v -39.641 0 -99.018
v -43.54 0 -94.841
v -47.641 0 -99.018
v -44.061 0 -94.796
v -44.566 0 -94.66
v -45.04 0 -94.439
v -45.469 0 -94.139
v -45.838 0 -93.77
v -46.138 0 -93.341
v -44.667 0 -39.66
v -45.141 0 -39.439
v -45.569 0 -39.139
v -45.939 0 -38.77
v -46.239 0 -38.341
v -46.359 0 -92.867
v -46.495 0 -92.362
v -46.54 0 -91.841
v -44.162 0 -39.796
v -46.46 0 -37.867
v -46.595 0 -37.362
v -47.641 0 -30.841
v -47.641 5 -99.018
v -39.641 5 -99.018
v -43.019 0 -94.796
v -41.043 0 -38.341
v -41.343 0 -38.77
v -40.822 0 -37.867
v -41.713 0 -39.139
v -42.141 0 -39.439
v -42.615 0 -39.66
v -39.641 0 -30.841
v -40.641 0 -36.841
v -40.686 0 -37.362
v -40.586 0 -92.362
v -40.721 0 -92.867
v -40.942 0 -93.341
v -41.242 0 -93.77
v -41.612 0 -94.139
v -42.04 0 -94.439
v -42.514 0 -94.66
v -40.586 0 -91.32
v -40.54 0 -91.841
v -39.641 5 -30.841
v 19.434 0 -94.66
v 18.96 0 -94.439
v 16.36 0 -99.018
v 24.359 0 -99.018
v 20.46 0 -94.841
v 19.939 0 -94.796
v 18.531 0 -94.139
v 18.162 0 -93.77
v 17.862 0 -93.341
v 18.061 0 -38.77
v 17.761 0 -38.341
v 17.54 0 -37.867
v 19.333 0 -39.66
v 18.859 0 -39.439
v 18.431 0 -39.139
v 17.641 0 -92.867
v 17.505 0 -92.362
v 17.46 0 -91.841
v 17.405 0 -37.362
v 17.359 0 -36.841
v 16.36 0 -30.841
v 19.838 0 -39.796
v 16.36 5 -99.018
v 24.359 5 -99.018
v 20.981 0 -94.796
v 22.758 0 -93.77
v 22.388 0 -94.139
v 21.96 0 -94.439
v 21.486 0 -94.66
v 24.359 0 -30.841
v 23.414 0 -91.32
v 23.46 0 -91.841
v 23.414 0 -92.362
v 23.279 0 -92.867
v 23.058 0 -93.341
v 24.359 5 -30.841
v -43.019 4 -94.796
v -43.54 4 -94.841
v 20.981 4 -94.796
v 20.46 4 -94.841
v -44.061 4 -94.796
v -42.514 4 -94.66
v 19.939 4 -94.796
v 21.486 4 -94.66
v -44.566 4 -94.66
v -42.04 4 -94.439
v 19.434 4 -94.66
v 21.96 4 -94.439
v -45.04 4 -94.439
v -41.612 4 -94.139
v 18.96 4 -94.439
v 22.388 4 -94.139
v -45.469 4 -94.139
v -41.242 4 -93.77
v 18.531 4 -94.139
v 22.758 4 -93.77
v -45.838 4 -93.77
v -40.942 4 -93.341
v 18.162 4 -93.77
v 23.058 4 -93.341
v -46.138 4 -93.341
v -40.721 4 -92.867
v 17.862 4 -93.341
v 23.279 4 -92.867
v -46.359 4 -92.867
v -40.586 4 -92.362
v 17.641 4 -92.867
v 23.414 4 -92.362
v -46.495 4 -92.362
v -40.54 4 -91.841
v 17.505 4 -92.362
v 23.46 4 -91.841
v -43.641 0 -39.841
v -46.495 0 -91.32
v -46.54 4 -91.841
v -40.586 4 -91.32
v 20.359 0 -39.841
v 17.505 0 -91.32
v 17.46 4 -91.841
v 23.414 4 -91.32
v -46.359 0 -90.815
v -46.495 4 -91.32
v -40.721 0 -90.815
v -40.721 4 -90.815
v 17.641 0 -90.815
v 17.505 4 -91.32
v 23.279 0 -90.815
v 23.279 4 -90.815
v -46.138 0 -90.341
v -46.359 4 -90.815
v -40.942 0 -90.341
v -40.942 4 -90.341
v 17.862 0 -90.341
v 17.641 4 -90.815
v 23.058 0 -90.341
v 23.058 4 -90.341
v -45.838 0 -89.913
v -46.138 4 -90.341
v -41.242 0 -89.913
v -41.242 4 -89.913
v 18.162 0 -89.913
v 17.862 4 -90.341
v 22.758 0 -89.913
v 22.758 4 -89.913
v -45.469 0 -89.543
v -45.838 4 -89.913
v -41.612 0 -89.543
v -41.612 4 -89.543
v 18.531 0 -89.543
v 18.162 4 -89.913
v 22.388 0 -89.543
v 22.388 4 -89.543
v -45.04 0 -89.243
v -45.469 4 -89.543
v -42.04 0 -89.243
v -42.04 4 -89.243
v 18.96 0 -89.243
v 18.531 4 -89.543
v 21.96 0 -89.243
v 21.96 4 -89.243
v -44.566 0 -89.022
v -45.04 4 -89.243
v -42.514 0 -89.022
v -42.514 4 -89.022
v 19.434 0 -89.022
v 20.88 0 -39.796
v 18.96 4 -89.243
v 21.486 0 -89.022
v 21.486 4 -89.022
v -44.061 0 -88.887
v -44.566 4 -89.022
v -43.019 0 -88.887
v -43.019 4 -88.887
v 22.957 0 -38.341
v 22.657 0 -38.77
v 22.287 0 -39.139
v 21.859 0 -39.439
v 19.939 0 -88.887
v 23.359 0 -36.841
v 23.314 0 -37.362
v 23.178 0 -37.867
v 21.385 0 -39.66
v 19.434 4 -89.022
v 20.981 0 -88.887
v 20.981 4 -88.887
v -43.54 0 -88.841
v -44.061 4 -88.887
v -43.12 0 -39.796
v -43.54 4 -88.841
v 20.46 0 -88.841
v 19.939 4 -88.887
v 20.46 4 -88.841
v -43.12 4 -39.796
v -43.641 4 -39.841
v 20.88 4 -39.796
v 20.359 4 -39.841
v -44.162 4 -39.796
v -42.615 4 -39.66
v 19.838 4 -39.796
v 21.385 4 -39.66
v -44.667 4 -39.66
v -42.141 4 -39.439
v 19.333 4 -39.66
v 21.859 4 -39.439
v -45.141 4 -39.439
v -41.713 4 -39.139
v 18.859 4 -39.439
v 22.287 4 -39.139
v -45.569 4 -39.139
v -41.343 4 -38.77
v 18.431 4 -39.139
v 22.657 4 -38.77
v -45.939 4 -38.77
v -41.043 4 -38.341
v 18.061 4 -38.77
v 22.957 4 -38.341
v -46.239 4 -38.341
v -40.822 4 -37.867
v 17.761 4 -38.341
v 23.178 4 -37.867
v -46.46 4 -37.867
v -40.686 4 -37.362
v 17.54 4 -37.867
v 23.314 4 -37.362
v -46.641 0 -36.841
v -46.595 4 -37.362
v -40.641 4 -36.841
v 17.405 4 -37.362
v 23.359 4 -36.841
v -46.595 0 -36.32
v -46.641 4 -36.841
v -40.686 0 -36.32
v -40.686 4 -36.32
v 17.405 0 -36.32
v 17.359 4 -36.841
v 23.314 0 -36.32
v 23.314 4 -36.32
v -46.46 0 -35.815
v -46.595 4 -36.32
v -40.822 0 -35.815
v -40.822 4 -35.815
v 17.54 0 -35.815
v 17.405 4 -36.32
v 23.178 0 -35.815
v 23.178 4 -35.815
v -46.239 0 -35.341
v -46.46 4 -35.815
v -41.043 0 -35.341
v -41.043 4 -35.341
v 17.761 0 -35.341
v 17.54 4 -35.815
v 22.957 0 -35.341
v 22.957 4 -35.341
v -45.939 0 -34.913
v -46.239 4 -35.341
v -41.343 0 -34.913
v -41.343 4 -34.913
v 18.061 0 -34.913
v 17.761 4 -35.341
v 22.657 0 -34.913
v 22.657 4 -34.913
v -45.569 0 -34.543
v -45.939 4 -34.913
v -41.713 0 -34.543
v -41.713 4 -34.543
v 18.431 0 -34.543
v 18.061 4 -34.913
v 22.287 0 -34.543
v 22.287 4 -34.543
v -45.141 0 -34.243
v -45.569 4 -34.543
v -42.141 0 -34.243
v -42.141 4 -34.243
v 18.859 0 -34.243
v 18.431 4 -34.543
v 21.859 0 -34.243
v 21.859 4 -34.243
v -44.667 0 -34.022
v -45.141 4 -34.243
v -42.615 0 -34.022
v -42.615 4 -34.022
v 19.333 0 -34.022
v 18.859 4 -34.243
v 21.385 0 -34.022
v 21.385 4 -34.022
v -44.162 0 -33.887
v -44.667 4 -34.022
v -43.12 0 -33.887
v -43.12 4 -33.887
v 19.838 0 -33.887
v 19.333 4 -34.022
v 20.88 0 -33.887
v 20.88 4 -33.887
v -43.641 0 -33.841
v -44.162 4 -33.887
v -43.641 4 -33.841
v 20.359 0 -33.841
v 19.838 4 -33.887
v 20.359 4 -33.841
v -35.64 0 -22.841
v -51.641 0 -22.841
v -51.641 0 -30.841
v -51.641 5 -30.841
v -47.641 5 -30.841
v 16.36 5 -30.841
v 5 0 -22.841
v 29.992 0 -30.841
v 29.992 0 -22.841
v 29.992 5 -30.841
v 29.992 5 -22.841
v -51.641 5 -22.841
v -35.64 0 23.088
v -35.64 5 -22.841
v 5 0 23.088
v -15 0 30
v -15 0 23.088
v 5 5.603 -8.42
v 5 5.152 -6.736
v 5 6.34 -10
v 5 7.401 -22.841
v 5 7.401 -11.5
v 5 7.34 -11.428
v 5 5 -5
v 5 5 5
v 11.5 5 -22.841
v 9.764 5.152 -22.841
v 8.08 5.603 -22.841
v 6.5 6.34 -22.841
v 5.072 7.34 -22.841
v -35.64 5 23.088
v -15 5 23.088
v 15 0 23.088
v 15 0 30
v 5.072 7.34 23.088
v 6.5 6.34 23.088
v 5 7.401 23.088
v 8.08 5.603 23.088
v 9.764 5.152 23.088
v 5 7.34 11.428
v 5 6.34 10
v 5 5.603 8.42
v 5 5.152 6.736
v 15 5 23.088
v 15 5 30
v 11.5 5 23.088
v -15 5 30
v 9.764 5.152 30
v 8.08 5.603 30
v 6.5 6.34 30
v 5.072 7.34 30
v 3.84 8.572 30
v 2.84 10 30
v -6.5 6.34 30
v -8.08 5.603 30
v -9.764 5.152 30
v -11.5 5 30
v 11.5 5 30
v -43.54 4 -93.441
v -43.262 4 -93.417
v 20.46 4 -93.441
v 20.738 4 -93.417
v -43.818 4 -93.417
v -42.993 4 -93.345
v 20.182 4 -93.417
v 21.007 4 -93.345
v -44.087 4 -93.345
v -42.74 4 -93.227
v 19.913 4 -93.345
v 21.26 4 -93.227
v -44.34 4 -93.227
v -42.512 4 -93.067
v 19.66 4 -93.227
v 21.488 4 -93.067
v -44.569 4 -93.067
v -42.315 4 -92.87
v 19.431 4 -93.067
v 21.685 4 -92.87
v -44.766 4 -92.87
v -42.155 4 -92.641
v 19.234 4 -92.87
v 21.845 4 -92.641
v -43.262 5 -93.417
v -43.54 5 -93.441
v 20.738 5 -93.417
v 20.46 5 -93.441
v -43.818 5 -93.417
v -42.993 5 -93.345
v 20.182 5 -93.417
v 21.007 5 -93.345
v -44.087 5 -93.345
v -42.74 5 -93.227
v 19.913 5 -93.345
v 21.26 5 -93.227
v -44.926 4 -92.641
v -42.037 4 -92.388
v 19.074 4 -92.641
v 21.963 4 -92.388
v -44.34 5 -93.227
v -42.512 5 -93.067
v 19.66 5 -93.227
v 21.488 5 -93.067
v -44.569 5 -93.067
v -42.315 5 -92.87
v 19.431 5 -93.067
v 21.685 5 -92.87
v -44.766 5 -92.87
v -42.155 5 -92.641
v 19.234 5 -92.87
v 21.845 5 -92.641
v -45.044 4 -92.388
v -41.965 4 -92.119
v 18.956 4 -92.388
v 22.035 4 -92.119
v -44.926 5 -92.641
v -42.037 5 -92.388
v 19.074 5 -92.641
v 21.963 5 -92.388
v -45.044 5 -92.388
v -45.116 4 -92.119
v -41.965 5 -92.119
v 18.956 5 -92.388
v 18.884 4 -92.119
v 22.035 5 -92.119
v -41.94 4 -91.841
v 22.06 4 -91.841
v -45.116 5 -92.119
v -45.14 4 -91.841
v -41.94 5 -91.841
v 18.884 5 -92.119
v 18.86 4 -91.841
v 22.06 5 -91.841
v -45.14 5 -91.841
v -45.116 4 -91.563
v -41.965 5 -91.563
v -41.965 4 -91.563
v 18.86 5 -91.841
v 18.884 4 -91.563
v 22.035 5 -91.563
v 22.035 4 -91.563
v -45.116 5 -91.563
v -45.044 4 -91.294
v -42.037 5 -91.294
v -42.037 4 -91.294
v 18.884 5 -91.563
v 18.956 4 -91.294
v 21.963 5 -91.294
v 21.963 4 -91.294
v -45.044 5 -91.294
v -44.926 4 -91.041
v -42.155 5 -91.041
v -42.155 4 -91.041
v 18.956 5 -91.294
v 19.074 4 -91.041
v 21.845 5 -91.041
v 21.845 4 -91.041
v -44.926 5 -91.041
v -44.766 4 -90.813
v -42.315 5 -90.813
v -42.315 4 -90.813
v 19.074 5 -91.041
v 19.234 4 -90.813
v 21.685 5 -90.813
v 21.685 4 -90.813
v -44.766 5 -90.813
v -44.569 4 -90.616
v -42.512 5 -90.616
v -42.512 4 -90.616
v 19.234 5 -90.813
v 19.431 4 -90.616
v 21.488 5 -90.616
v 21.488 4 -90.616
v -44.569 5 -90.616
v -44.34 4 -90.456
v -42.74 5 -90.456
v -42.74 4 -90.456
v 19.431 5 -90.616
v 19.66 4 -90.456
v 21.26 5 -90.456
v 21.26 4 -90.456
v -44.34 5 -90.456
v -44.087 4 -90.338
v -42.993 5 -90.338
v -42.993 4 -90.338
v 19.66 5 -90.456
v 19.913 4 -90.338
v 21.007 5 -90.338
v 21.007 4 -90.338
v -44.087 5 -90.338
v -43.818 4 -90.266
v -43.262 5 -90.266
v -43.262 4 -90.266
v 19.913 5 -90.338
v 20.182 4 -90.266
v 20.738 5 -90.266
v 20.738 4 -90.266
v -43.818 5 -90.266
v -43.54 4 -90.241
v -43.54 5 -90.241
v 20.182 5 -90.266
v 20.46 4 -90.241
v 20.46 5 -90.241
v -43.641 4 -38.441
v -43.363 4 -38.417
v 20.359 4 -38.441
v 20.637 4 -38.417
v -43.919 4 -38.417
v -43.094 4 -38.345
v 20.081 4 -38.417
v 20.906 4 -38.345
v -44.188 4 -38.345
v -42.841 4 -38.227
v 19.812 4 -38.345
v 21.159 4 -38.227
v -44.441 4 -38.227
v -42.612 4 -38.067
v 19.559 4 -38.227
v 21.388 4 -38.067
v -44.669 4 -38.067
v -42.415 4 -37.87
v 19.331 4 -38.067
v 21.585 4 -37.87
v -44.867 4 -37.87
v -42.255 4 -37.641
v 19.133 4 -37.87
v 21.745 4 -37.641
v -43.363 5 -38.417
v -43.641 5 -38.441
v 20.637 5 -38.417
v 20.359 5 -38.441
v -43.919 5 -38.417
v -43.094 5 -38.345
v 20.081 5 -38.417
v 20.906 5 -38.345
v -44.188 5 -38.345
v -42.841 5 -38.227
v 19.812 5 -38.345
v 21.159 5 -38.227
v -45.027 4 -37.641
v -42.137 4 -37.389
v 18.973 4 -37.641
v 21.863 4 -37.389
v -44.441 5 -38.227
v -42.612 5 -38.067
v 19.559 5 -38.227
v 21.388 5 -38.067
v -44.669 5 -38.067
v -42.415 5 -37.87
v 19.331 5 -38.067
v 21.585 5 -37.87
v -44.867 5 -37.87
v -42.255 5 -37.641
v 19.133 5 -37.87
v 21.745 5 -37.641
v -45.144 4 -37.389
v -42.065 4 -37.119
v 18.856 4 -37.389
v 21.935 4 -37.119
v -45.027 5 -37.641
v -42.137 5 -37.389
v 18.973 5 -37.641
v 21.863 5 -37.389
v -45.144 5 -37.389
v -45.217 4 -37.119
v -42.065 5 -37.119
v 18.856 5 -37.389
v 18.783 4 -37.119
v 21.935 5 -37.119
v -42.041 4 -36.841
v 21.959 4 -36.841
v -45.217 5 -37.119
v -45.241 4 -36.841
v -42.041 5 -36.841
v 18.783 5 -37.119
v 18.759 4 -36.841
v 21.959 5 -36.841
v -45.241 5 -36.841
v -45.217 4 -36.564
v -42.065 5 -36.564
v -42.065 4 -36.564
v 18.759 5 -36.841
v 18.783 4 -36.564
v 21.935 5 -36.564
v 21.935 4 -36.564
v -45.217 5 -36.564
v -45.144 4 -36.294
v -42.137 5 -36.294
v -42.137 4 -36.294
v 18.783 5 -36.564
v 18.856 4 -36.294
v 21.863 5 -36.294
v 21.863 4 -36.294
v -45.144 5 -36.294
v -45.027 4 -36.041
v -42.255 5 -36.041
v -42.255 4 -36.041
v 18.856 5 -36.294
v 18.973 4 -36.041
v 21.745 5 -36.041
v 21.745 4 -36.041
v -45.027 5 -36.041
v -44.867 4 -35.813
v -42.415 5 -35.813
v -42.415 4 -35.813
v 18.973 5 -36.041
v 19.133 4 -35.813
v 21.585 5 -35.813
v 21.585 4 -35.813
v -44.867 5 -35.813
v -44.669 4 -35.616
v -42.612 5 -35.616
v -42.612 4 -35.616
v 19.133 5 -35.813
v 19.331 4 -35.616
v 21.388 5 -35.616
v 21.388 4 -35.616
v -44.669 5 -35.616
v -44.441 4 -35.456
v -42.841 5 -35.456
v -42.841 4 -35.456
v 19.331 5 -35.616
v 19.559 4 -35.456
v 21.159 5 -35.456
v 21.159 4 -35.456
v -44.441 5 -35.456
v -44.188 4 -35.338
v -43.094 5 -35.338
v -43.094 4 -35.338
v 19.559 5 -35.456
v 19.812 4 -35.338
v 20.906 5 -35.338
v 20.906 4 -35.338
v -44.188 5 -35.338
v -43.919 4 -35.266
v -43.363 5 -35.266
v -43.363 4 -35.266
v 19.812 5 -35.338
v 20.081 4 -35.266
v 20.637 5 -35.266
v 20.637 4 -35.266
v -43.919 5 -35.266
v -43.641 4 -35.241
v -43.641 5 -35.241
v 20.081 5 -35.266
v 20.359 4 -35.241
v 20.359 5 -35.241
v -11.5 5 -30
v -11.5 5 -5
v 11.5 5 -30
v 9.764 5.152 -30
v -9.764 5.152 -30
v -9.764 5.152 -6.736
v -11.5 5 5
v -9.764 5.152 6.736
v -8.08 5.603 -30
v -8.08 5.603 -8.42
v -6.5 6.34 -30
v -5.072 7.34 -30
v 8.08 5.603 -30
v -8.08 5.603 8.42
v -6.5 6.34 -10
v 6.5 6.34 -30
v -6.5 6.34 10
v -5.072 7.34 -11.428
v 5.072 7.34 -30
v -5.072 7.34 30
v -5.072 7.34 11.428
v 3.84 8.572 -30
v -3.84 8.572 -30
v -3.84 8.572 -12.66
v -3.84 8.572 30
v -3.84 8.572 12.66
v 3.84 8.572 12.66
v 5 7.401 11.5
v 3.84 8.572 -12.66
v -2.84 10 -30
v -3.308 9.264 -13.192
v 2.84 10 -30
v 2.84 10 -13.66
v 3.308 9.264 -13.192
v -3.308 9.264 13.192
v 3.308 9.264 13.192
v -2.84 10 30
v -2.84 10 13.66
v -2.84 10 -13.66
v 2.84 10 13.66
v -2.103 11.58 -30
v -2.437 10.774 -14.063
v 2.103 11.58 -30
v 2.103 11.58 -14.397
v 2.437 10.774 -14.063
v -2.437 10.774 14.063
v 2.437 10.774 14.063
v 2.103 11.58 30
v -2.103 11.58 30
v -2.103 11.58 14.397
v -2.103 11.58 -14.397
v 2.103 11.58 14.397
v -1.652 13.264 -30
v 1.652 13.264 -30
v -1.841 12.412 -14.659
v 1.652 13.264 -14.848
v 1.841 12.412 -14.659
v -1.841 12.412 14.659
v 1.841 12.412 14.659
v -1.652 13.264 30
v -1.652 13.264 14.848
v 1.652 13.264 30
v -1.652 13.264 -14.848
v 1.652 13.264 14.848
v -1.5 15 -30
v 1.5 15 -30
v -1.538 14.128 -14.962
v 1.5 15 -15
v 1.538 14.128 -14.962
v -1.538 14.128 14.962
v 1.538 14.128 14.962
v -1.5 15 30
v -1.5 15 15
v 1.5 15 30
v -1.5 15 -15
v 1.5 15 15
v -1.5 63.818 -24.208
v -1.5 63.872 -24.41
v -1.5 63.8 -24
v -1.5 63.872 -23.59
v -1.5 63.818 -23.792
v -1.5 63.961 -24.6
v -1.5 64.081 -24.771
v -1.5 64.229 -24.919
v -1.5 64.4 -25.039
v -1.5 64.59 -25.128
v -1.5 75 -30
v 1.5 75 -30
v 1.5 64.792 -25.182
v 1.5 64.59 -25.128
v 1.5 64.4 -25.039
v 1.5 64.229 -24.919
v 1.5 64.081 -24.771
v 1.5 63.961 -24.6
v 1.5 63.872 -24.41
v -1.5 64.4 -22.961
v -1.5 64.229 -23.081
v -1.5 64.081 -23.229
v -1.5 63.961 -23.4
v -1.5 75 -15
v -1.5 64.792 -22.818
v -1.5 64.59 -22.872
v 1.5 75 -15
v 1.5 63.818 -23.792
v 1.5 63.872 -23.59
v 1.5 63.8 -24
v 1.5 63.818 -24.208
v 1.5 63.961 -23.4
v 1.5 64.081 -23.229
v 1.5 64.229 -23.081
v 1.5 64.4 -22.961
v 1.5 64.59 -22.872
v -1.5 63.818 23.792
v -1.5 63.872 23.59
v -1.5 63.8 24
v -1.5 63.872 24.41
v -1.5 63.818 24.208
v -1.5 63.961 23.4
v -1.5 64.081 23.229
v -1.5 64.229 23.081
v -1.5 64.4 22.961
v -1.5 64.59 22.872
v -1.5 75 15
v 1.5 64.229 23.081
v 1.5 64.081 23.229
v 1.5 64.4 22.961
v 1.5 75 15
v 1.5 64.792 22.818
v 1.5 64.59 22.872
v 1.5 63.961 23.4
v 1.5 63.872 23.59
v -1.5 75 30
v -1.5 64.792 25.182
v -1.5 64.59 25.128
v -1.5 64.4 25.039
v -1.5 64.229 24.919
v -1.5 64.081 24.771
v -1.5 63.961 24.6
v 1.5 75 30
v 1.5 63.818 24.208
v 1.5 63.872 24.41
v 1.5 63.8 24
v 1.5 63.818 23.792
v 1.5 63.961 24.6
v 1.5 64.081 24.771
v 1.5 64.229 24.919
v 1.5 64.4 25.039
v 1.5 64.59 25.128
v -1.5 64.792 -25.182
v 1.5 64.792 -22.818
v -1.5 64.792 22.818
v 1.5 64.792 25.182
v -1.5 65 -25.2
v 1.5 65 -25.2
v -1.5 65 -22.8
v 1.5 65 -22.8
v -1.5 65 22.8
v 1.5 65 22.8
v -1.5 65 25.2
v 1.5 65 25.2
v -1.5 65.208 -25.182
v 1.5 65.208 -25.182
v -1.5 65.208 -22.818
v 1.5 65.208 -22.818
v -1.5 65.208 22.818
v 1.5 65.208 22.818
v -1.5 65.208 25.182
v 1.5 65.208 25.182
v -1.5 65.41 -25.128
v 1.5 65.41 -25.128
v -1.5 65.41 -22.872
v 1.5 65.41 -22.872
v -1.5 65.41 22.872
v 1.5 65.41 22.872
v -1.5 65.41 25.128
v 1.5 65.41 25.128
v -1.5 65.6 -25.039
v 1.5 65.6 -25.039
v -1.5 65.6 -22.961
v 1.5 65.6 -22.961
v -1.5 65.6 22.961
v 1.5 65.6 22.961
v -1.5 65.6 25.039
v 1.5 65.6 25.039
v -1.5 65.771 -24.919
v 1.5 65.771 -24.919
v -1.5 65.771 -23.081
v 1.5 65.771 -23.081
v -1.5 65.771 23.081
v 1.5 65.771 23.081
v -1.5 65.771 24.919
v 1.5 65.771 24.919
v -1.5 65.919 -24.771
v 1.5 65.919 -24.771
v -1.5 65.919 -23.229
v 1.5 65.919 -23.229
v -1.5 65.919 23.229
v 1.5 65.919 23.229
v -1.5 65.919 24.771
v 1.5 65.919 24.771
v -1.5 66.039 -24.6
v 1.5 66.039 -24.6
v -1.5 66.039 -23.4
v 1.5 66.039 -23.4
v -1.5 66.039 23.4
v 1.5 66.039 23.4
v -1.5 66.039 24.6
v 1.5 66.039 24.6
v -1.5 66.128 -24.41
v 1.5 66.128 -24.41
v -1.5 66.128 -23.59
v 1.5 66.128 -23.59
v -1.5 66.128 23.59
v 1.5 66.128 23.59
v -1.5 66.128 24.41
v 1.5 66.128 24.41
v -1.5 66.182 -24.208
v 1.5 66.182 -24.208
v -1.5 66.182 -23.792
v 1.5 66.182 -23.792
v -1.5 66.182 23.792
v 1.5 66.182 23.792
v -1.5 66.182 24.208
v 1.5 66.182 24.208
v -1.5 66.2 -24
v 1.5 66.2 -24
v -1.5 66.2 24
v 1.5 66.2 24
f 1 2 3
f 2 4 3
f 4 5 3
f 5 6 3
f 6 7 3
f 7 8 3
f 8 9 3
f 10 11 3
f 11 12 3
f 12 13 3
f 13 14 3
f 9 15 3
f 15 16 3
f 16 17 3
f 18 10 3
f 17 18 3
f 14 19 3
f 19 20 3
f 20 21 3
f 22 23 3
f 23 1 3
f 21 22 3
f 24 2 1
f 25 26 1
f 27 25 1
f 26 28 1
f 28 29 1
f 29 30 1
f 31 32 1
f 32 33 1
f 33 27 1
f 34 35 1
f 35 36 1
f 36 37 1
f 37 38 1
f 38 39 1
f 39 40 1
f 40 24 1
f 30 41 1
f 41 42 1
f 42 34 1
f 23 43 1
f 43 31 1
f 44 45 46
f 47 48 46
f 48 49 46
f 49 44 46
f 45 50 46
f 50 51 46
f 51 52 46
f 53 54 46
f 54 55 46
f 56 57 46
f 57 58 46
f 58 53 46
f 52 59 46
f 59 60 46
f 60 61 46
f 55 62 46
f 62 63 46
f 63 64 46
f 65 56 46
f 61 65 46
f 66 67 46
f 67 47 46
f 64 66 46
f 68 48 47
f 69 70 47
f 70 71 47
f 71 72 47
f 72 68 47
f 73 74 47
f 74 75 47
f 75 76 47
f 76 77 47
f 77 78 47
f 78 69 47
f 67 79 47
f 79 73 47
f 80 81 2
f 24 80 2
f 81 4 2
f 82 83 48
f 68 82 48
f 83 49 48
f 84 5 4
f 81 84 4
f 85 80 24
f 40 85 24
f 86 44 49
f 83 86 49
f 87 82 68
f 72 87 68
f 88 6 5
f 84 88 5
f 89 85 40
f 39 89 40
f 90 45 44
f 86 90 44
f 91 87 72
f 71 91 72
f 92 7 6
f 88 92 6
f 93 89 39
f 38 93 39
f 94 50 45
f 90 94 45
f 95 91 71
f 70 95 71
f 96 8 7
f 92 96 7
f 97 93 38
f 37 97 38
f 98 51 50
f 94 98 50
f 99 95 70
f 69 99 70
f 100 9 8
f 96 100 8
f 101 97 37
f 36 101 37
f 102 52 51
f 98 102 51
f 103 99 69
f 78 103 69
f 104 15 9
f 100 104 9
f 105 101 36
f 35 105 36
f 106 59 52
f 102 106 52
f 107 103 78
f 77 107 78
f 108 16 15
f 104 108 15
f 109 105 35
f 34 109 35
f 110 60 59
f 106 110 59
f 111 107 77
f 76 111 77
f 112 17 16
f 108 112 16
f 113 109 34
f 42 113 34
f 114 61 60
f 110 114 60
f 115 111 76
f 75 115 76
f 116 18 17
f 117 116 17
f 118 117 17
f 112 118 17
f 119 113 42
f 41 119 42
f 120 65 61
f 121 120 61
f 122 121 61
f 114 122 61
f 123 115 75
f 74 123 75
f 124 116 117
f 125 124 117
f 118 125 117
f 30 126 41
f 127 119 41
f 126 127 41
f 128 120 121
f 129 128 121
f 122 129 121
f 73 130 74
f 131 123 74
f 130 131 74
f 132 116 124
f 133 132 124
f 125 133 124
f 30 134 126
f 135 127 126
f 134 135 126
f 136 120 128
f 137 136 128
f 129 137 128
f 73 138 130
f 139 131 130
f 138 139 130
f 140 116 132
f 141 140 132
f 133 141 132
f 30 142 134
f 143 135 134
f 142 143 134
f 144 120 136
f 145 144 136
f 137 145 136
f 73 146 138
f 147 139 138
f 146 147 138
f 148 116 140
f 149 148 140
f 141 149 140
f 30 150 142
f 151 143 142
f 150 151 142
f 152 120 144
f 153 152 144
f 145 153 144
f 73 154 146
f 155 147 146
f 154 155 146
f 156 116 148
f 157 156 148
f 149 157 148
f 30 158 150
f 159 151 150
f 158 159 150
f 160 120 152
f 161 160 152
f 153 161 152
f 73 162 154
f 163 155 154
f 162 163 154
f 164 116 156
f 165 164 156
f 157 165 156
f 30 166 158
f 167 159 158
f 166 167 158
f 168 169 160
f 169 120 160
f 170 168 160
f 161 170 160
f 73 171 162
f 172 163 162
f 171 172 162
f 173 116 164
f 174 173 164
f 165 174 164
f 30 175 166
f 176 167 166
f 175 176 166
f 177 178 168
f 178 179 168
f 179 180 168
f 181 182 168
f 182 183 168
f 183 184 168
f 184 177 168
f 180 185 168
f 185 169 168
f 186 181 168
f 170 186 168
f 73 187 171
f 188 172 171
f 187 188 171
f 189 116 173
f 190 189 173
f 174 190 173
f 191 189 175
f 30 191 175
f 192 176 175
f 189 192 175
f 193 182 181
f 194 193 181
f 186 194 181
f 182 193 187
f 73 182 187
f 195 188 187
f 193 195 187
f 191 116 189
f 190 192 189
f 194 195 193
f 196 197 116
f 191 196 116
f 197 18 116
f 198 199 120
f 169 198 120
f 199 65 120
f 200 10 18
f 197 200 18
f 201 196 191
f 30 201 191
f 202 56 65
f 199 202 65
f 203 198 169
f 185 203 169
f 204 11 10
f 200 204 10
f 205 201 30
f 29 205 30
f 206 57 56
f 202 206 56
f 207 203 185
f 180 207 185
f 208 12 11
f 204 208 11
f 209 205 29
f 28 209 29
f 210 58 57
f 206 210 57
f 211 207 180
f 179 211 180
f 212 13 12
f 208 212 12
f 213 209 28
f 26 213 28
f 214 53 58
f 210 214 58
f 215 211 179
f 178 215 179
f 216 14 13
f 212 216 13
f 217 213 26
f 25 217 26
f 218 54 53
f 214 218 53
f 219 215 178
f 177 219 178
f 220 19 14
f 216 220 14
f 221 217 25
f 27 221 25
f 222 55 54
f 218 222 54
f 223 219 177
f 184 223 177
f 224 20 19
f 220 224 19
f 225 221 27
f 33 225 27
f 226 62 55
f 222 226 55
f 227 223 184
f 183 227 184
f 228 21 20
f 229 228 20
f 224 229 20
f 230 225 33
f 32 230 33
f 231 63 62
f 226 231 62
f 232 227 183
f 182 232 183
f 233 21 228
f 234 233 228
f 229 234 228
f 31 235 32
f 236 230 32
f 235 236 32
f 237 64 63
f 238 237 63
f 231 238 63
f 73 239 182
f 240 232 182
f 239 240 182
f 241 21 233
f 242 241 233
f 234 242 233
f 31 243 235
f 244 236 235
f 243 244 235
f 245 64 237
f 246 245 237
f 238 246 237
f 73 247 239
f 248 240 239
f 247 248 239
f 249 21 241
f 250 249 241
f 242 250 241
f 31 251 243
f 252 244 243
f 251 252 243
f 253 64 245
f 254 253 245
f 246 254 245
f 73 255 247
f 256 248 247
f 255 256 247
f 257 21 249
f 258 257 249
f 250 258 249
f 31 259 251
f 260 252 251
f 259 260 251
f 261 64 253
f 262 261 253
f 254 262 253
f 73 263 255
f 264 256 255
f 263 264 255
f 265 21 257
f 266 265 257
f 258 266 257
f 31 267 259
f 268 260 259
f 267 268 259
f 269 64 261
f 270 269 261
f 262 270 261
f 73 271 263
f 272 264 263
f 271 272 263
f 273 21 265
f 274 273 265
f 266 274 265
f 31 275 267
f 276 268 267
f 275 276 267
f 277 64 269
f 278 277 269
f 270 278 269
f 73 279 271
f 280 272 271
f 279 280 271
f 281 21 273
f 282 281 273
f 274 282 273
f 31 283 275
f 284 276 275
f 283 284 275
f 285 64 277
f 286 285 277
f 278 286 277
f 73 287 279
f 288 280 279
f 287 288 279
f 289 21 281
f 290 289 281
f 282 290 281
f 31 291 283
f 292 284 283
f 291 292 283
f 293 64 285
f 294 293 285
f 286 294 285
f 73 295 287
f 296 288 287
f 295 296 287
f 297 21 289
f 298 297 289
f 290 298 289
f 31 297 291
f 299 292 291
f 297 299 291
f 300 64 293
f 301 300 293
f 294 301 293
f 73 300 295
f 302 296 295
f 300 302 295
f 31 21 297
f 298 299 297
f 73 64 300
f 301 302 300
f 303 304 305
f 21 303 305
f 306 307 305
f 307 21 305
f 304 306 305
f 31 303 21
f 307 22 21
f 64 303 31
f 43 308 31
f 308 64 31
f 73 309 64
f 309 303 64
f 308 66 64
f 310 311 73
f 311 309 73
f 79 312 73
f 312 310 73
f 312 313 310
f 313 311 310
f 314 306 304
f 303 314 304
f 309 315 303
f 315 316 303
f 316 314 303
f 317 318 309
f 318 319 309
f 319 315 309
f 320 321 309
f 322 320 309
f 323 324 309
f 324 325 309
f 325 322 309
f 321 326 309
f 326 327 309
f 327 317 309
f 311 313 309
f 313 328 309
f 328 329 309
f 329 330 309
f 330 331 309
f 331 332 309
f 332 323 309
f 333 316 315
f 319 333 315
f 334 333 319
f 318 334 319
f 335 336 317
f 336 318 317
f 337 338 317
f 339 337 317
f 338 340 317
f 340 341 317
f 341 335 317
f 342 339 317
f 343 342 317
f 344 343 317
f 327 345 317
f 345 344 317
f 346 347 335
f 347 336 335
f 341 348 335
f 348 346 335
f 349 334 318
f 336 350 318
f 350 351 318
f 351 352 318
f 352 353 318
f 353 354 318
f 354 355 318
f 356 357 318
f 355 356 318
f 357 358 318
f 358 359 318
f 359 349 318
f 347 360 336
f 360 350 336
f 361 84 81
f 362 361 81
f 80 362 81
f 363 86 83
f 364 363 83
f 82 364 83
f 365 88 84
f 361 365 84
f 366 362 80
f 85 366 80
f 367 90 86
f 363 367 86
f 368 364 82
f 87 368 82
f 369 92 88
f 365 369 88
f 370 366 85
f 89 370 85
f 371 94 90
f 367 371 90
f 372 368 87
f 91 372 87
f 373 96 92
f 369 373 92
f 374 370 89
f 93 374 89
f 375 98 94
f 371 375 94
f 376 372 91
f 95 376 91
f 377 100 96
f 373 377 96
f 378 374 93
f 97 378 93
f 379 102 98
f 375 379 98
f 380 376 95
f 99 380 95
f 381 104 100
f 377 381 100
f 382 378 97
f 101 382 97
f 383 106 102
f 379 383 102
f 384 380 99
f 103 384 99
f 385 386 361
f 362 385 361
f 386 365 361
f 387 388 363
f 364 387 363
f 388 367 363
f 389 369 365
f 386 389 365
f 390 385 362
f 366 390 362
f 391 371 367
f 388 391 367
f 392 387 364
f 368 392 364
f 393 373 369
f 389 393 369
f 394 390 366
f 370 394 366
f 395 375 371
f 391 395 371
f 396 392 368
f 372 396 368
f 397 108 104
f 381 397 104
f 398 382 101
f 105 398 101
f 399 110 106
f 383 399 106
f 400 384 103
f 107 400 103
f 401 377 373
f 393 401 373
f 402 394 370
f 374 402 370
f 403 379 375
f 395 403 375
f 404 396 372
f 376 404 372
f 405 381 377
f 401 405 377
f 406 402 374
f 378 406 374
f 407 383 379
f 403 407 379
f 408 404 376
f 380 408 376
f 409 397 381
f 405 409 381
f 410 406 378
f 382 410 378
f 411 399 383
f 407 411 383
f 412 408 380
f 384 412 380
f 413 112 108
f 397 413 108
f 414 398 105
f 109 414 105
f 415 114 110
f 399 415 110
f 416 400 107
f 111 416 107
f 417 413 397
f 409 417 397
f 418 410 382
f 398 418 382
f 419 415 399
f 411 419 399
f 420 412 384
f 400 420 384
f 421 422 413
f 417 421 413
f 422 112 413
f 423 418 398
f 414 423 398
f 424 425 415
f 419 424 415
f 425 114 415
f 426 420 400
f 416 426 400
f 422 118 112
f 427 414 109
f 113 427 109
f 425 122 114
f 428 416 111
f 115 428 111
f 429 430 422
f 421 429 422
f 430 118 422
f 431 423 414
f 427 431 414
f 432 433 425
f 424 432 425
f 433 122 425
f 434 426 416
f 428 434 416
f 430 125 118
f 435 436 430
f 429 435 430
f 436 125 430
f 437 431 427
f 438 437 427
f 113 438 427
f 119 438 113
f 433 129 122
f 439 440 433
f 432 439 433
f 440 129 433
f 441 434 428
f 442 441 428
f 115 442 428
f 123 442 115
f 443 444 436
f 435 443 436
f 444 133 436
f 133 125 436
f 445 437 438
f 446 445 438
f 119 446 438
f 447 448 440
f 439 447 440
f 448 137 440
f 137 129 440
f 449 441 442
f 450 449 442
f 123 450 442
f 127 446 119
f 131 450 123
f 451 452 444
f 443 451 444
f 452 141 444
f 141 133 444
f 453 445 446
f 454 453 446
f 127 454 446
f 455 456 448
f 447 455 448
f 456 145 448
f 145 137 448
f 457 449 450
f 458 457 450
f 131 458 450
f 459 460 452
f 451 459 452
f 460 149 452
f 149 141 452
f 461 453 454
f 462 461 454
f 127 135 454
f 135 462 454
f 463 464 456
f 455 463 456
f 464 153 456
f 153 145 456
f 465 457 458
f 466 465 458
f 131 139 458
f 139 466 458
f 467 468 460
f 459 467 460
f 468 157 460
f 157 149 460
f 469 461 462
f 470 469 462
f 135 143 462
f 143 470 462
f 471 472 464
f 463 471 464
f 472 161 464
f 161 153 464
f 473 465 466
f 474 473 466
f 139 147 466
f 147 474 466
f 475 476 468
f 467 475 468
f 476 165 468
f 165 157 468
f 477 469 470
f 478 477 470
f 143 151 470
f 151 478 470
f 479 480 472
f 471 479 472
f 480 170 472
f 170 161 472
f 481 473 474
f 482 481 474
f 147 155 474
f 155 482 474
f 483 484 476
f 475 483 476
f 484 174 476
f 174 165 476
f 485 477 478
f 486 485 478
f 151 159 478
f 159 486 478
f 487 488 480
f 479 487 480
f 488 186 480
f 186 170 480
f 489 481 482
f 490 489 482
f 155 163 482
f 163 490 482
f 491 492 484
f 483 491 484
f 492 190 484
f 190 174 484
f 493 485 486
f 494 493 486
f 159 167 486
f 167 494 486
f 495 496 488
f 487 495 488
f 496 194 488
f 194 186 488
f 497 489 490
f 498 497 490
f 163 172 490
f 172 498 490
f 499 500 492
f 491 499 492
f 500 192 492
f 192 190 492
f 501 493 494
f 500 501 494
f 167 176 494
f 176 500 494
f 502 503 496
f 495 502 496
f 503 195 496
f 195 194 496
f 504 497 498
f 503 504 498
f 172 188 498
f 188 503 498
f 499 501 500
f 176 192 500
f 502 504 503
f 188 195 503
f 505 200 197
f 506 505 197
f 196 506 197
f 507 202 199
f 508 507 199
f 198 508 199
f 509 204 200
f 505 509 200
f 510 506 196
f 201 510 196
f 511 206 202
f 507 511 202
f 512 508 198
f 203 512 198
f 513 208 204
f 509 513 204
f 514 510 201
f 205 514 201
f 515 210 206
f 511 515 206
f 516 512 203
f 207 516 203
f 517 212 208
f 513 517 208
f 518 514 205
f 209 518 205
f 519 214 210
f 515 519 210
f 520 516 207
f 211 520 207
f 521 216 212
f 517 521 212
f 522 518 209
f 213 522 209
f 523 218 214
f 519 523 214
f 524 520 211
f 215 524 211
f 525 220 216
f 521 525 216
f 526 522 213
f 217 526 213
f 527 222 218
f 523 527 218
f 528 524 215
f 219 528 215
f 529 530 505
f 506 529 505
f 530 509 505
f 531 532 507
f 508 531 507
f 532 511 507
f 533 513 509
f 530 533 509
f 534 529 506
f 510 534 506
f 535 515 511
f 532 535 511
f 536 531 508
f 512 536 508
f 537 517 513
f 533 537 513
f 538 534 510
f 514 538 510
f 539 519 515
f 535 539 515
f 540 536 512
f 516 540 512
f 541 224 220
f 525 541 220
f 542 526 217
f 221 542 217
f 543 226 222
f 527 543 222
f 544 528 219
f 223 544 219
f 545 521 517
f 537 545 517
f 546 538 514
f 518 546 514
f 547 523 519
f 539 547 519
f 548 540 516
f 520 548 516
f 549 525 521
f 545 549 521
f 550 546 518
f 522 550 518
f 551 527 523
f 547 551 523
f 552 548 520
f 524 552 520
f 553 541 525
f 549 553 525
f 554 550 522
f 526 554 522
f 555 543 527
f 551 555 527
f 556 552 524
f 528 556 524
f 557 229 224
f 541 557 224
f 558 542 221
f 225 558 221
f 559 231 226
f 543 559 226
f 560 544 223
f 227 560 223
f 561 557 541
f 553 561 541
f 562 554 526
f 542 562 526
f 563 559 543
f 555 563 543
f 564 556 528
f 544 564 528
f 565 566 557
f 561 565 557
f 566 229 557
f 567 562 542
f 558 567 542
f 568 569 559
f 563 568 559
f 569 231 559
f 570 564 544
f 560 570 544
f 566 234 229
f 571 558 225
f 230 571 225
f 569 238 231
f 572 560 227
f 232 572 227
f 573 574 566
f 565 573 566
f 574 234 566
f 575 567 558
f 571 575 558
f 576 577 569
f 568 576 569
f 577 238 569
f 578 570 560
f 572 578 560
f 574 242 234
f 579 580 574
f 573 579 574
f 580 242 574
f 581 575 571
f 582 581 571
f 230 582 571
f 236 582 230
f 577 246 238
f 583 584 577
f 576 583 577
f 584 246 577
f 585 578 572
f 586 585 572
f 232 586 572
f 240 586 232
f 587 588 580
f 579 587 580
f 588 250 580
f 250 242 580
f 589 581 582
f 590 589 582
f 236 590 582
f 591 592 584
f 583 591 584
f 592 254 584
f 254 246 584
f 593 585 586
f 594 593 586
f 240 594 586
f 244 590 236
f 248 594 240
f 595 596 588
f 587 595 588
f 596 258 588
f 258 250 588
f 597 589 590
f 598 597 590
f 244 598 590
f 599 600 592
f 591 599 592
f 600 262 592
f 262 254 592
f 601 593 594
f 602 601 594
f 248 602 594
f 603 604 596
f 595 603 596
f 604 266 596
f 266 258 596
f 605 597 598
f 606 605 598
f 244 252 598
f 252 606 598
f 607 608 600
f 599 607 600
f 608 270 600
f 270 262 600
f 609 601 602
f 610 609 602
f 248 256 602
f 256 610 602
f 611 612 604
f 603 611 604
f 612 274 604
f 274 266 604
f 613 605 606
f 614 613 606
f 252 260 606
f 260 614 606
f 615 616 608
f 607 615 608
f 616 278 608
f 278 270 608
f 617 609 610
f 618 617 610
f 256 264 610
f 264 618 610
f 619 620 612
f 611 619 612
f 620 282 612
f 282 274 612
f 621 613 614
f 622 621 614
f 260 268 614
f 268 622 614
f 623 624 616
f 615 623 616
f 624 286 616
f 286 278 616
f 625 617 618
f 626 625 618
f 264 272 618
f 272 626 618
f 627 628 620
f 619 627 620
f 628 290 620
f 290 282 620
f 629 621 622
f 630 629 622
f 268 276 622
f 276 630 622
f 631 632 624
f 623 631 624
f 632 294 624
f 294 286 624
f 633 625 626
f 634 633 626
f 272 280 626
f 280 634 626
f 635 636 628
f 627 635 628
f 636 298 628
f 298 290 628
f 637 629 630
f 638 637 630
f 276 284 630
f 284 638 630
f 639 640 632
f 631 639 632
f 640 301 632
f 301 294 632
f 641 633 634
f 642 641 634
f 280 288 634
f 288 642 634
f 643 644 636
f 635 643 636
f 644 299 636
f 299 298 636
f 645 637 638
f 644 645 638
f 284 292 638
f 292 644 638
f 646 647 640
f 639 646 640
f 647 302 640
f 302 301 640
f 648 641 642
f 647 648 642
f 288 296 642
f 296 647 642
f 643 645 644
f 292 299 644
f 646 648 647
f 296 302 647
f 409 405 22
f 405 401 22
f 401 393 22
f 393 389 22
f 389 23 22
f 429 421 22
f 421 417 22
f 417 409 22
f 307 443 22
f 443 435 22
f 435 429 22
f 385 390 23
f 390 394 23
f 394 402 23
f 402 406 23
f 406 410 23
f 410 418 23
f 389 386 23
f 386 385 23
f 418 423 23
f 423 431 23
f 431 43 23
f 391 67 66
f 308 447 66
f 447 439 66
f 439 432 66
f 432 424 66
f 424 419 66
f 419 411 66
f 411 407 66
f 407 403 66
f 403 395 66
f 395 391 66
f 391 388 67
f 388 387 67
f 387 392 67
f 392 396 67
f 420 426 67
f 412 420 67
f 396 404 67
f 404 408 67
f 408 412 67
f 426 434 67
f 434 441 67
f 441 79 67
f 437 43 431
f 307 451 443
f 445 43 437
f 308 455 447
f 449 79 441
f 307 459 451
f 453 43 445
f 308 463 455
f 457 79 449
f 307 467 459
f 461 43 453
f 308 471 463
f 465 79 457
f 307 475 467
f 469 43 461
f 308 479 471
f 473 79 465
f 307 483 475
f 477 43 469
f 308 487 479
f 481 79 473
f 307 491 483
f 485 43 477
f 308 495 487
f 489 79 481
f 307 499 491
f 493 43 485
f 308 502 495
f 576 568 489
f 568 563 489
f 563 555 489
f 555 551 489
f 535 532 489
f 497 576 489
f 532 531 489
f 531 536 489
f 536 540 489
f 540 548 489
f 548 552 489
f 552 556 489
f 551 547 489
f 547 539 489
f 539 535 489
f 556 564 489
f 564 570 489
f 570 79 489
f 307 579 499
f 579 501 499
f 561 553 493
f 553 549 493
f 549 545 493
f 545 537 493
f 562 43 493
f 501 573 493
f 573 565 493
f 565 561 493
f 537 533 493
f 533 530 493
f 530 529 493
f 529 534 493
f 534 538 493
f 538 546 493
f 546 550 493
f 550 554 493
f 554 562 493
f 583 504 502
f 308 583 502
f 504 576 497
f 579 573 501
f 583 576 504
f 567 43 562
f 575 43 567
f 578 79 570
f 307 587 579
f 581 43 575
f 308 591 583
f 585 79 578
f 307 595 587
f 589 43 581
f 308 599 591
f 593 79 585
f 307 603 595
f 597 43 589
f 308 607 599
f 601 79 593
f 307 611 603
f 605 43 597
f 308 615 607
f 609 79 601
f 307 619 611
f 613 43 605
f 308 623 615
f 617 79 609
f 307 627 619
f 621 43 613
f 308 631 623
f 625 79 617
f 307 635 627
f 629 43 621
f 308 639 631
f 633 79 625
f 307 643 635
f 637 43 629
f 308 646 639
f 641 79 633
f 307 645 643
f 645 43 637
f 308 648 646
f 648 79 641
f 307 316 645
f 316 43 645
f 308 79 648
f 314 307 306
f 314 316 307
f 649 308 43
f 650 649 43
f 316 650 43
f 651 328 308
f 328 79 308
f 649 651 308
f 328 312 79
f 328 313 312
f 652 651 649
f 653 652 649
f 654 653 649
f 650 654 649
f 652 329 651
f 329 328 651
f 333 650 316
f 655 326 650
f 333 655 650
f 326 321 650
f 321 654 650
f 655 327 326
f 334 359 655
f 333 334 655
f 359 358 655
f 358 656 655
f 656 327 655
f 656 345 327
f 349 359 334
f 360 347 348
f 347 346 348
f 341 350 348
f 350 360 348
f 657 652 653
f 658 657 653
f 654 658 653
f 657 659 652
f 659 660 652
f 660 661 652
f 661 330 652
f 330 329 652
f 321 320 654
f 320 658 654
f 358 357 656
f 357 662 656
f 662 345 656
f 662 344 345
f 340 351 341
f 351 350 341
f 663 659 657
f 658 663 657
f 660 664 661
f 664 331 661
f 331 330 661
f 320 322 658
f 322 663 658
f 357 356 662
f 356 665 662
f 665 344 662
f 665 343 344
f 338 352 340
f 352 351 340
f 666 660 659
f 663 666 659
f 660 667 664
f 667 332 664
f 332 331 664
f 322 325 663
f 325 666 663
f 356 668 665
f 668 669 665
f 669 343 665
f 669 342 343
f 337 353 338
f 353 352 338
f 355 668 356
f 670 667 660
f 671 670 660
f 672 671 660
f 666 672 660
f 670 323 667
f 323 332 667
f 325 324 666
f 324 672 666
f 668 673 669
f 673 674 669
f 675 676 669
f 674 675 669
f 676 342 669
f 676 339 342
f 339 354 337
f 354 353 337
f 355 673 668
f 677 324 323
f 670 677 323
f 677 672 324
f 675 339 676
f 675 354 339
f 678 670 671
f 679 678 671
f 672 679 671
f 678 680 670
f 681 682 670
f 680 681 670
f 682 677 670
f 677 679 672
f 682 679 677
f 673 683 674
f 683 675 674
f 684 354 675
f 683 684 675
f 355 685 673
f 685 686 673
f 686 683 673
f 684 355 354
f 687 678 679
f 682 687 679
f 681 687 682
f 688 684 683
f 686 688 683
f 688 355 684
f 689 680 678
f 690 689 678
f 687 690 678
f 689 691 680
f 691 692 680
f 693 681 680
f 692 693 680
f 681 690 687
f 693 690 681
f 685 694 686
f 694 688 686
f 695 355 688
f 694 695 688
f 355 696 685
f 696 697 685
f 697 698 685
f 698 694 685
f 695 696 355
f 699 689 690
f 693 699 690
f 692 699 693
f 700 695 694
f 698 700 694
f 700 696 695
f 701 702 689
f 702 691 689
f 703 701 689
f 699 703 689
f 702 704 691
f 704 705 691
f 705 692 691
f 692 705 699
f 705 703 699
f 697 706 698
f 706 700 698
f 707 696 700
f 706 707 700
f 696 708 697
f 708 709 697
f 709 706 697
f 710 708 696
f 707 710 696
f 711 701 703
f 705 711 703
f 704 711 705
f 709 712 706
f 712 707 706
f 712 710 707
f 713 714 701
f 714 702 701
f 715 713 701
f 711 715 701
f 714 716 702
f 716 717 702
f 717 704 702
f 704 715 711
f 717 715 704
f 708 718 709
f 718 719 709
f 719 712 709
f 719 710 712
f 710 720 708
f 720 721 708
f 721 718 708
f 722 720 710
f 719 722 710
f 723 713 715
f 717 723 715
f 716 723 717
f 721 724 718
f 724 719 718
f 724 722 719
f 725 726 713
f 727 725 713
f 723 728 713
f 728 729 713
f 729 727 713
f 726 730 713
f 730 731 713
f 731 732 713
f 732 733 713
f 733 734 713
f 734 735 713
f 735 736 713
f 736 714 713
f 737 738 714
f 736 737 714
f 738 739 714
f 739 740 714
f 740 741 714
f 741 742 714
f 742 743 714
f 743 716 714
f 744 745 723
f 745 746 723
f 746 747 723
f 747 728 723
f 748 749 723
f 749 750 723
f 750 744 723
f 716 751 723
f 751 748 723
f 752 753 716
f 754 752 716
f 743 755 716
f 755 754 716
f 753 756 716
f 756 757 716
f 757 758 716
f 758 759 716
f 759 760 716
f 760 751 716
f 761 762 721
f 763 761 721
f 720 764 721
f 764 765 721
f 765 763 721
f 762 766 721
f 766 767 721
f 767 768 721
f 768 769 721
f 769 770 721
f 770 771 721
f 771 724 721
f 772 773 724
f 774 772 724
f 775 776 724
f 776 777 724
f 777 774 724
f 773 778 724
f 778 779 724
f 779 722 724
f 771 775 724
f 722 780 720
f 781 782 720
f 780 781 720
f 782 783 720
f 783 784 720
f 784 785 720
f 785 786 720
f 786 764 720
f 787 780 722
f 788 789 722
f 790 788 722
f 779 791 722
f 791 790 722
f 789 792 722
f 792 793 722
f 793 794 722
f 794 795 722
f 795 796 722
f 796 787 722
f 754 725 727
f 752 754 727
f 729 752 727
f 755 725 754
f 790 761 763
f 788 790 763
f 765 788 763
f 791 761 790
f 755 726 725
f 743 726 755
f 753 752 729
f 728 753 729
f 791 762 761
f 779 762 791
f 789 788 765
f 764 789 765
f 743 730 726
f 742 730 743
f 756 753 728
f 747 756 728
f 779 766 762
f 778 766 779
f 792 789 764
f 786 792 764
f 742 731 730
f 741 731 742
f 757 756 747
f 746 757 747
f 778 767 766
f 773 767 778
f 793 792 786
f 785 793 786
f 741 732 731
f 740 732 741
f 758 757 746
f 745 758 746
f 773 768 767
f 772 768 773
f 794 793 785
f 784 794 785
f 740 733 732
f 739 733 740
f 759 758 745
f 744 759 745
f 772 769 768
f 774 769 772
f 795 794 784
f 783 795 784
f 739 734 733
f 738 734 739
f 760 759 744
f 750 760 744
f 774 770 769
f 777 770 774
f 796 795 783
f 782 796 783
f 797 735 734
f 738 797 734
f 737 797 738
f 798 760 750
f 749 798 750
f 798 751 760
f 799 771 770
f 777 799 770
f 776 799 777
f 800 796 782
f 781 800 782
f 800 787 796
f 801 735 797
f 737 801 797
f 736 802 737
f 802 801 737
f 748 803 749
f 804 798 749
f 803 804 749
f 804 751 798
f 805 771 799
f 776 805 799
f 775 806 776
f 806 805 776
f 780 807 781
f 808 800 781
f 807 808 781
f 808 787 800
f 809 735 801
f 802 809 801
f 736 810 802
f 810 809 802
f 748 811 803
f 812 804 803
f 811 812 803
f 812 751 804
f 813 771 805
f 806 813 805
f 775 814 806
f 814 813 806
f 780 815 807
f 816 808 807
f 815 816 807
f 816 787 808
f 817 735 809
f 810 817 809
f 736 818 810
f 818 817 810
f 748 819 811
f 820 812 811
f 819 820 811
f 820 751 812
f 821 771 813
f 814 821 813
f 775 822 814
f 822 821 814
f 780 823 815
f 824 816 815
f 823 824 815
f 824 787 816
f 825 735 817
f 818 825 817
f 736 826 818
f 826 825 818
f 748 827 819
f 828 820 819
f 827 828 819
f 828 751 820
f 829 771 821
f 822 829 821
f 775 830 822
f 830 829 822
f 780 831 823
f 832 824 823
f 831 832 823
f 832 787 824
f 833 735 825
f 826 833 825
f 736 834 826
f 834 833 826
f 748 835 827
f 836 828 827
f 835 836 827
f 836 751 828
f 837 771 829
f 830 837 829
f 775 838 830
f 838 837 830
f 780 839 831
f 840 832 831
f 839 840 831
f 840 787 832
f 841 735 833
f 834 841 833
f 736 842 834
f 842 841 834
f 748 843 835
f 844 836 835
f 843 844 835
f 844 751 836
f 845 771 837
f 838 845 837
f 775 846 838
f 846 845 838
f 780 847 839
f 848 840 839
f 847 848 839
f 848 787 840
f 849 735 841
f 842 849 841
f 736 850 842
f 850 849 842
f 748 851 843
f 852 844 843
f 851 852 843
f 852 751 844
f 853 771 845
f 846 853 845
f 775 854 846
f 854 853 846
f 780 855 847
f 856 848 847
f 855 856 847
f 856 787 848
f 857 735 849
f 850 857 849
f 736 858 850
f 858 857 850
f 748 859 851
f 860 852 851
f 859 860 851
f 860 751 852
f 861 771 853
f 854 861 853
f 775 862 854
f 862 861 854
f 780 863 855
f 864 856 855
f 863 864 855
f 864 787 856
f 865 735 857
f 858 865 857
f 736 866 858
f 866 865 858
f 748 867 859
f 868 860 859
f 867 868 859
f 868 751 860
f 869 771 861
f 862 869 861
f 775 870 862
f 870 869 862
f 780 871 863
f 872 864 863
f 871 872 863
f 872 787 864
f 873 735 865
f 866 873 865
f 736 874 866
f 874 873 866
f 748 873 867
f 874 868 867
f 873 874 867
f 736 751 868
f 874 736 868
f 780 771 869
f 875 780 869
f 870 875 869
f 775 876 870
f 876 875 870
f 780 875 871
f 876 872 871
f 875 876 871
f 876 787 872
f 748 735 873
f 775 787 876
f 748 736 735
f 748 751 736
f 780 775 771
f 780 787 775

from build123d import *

# Parameters (mm, degrees)
SKETCH1_R           = 1.6
BOSS_EXTRUDE1_DEPTH = 5
SKETCH5_R           = 3
CUT_EXTRUDE6_DEPTH  = 4
SKETCH2_W           = 3
SKETCH2_H           = 15
BOSS_EXTRUDE2_DEPTH = 70
SKETCH3_R           = 1.2
CUT_EXTRUDE1_DEPTH  = 70
FILLET1_R           = 10


with BuildPart() as part:
    # Sketch1 → Boss-Extrude1 (new body)
    with BuildSketch(Plane(origin=(0, 0, 0), x_dir=(1, 0, 0), z_dir=(0, 1, 0))):
        Polygon((5, 22.84134835), (16.360076307, 22.84134835), (29.991927163, 22.84134835), (29.991927163, 30.010026716), (29.991927163, 30.84134835), (24.359090043, 30.84134835), (24.359090043, 92.100281359), (24.359090043, 99.017701748), (16.360076307, 99.017701748), (16.360076307, 92.100281359), (16.360076307, 30.84134835), (-39.640909957, 30.84134835), (-39.640909957, 88.100281359), (-39.640909957, 99.017701748), (-47.640909957, 99.017701748), (-47.640909957, 88.100281359), (-47.640909957, 30.84134835), (-51.640909957, 30.84134835), (-51.640909957, 22.84134835), (-44.008072837, 22.84134835), (-35.639923693, 22.84134835), (-35.639923693, -23.088281846), (-15, -23.088281846), (-15, -30), (15, -30), (15, -23.088281846), (5, -23.088281846), align=None)
        with Locations(Location((-43.540208284, 91.841256161, 0), (0, 0, 270))):
            Circle(SKETCH1_R, mode=Mode.SUBTRACT)
        with Locations(Location((20.459791716, 91.841256161, 0), (0, 0, 270))):
            Circle(SKETCH1_R, mode=Mode.SUBTRACT)
        with Locations(Location((-43.640909957, 36.84134835, 0), (0, 0, 270))):
            Circle(SKETCH1_R, mode=Mode.SUBTRACT)
        with Locations(Location((20.359090043, 36.84134835, 0), (0, 0, 270))):
            Circle(SKETCH1_R, mode=Mode.SUBTRACT)
    extrude(amount=BOSS_EXTRUDE1_DEPTH)

    # Sketch5 → Cut-Extrude6 (cut)
    with BuildSketch(Plane.XZ):
        with Locations(Location((20.459791716, -91.841256161, 0), (0, 0, 270))):
            Circle(SKETCH5_R)
        with Locations(Location((20.359090043, -36.84134835, 0), (0, 0, 270))):
            Circle(SKETCH5_R)
        with Locations(Location((-43.540208284, -91.841256161, 0), (0, 0, 270))):
            Circle(SKETCH5_R)
        with Locations(Location((-43.640909957, -36.84134835, 0), (0, 0, 270))):
            Circle(SKETCH5_R)
    extrude(amount=-CUT_EXTRUDE6_DEPTH, mode=Mode.SUBTRACT)

    # Sketch2 → Boss-Extrude2 (add)
    with BuildSketch(Plane(origin=(0, 5, 0), x_dir=(1, 0, 0), z_dir=(0, 1, 0))):
        with Locations((0, -22.5)):
            Rectangle(SKETCH2_W, SKETCH2_H)
        with Locations((0, 22.5)):
            Rectangle(SKETCH2_W, SKETCH2_H)
    extrude(amount=BOSS_EXTRUDE2_DEPTH)

    # Sketch3 → Cut-Extrude1 (cut)
    with BuildSketch(Plane.ZY.offset(1.5)):
        with Locations((-24, 65)):
            Circle(SKETCH3_R)
        with Locations((24, 65)):
            Circle(SKETCH3_R)
    extrude(amount=-CUT_EXTRUDE1_DEPTH, mode=Mode.SUBTRACT)

    # Fillet1
    # the kernel refuses this fillet: 10 mm, written as the material it adds along each edge
    with BuildSketch(Plane(origin=(-1.5, 5, 15), x_dir=(-1, 0, 0), z_dir=(0, 0, 1)), Plane(origin=(-1.5, 5, -30), x_dir=(-1, 0, 0), z_dir=(0, 0, 1))) as fillet1_piece_1:
        with BuildLine():
            CenterArc((FILLET1_R, -FILLET1_R), FILLET1_R, 90, 90)
            Line((0, -FILLET1_R), (0, 0))
            Line((0, 0), (FILLET1_R, 0))
        make_face()
    extrude(amount=15)
    with BuildSketch(Plane(origin=(1.5, 5, 30), x_dir=(1, 0, 0), z_dir=(0, 0, -1))) as fillet1_piece_2_section:
        with BuildLine():
            CenterArc((FILLET1_R, -FILLET1_R), FILLET1_R, 90, 90)
            Line((0, -FILLET1_R), (0, 0))
            Line((0, 0), (FILLET1_R, 0))
        make_face()
    fillet1_piece_2 = extrude(amount=40, mode=Mode.PRIVATE)
    fillet1_piece_2 = split(fillet1_piece_2, bisect_by=Plane(origin=(1.5, 5, 23.088281846), z_dir=(0, 0, 1)), keep=Keep.TOP, mode=Mode.PRIVATE)
    add(fillet1_piece_2)
    with BuildSketch(Plane(origin=(1.5, 5, 30), x_dir=(1, 0, 0), z_dir=(0, 0, -1))) as fillet1_piece_3_section:
        with BuildLine():
            CenterArc((FILLET1_R, -FILLET1_R), FILLET1_R, 90, 90)
            Line((0, -FILLET1_R), (0, 0))
            Line((0, 0), (FILLET1_R, 0))
        make_face()
    fillet1_piece_3 = extrude(amount=15, mode=Mode.PRIVATE)
    fillet1_piece_3 = split(fillet1_piece_3, bisect_by=Plane(origin=(5, 5, 30), z_dir=(-1, 0, 0)), keep=Keep.TOP, mode=Mode.PRIVATE)
    add(fillet1_piece_3)
    with BuildSketch(Plane(origin=(1.5, 5, 15), x_dir=(0, 0, -1), z_dir=(-1, 0, 0)), Plane(origin=(-1.5, 5, -15), x_dir=(0, 0, 1), z_dir=(1, 0, 0))) as fillet1_piece_4:
        with BuildLine():
            CenterArc((FILLET1_R, -FILLET1_R), FILLET1_R, 90, 90)
            Line((0, -FILLET1_R), (0, 0))
            Line((0, 0), (FILLET1_R, 0))
        make_face()
    extrude(amount=3)
    with BuildSketch(Plane(origin=(1.5, 5, -15), x_dir=(1, 0, 0), z_dir=(0, 0, -1))) as fillet1_piece_5_section:
        with BuildLine():
            CenterArc((FILLET1_R, -FILLET1_R), FILLET1_R, 90, 90)
            Line((0, -FILLET1_R), (0, 0))
            Line((0, 0), (FILLET1_R, 0))
        make_face()
    fillet1_piece_5 = extrude(amount=15, mode=Mode.PRIVATE)
    fillet1_piece_5 = split(fillet1_piece_5, bisect_by=Plane(origin=(5, 5, -15), z_dir=(-1, 0, 0)), keep=Keep.TOP, mode=Mode.PRIVATE)
    add(fillet1_piece_5)
    with BuildSketch(Plane(origin=(1.5, 5, 10), x_dir=(1, 0, 0), z_dir=(0, 0, -1))) as fillet1_piece_6_section:
        with BuildLine():
            CenterArc((FILLET1_R, -FILLET1_R), FILLET1_R, 90, 90)
            Line((0, -FILLET1_R), (0, 0))
            Line((0, 0), (FILLET1_R, 0))
        make_face()
    fillet1_piece_6 = extrude(amount=40, mode=Mode.PRIVATE)
    fillet1_piece_6 = split(fillet1_piece_6, bisect_by=Plane(origin=(1.5, 5, -22.84134835), z_dir=(0, 0, -1)), keep=Keep.TOP, mode=Mode.PRIVATE)
    add(fillet1_piece_6)
    with BuildSketch(Plane(origin=(1.5, 5, 15), x_dir=(0, 0, -1), z_dir=(-1, 0, 0))) as fillet1_piece_7a_section:
        with BuildLine():
            CenterArc((FILLET1_R, -FILLET1_R), FILLET1_R, 90, 90)
            Line((0, -FILLET1_R), (0, 0))
            Line((0, 0), (FILLET1_R, 0))
        make_face()
    fillet1_piece_7a = extrude(amount=28, mode=Mode.PRIVATE)
    fillet1_piece_7a = split(fillet1_piece_7a, bisect_by=Plane(origin=(-1.5, 5, 15), z_dir=(-1, 0, 0)), keep=Keep.TOP, mode=Mode.PRIVATE)
    with BuildSketch(Plane(origin=(-1.5, 5, -10), x_dir=(-1, 0, 0), z_dir=(0, 0, 1))) as fillet1_piece_7b_section:
        with BuildLine():
            CenterArc((FILLET1_R, -FILLET1_R), FILLET1_R, 90, 90)
            Line((0, -FILLET1_R), (0, 0))
            Line((0, 0), (FILLET1_R, 0))
        make_face()
    fillet1_piece_7b = extrude(amount=40, mode=Mode.PRIVATE)
    fillet1_piece_7b = split(fillet1_piece_7b, bisect_by=Plane(origin=(-1.5, 5, 15), z_dir=(0, 0, -1)), keep=Keep.TOP, mode=Mode.PRIVATE)
    fillet1_piece_7 = fillet1_piece_7a & fillet1_piece_7b
    add(fillet1_piece_7)
    with BuildSketch(Plane(origin=(1.5, 5, 30), x_dir=(1, 0, 0), z_dir=(0, 0, -1))) as fillet1_piece_8a_section:
        with BuildLine():
            CenterArc((FILLET1_R, -FILLET1_R), FILLET1_R, 90, 90)
            Line((0, -FILLET1_R), (0, 0))
            Line((0, 0), (FILLET1_R, 0))
        make_face()
    fillet1_piece_8a = extrude(amount=40, mode=Mode.PRIVATE)
    fillet1_piece_8a = split(fillet1_piece_8a, bisect_by=Plane(origin=(5, 5, 30), z_dir=(-1, 0, 0)), keep=Keep.TOP, mode=Mode.PRIVATE)
    fillet1_piece_8a = split(fillet1_piece_8a, bisect_by=Plane(origin=(1.5, 5, 15), z_dir=(0, 0, -1)), keep=Keep.TOP, mode=Mode.PRIVATE)
    with BuildSketch(Plane(origin=(26.5, 5, 15), x_dir=(0, 0, -1), z_dir=(-1, 0, 0))) as fillet1_piece_8b_section:
        with BuildLine():
            CenterArc((FILLET1_R, -FILLET1_R), FILLET1_R, 90, 90)
            Line((0, -FILLET1_R), (0, 0))
            Line((0, 0), (FILLET1_R, 0))
        make_face()
    fillet1_piece_8b = extrude(amount=28, mode=Mode.PRIVATE)
    fillet1_piece_8b = split(fillet1_piece_8b, bisect_by=Plane(origin=(5, 5, 15), z_dir=(-1, 0, 0)), keep=Keep.TOP, mode=Mode.PRIVATE)
    fillet1_piece_8b = split(fillet1_piece_8b, bisect_by=Plane(origin=(1.5, 5, 15), z_dir=(1, 0, 0)), keep=Keep.TOP, mode=Mode.PRIVATE)
    fillet1_piece_8 = fillet1_piece_8a & fillet1_piece_8b
    add(fillet1_piece_8)
    with BuildSketch(Plane(origin=(-26.5, 5, -15), x_dir=(0, 0, 1), z_dir=(1, 0, 0))) as fillet1_piece_9a_section:
        with BuildLine():
            CenterArc((FILLET1_R, -FILLET1_R), FILLET1_R, 90, 90)
            Line((0, -FILLET1_R), (0, 0))
            Line((0, 0), (FILLET1_R, 0))
        make_face()
    fillet1_piece_9a = extrude(amount=28, mode=Mode.PRIVATE)
    fillet1_piece_9a = split(fillet1_piece_9a, bisect_by=Plane(origin=(-1.5, 5, -15), z_dir=(-1, 0, 0)), keep=Keep.TOP, mode=Mode.PRIVATE)
    with BuildSketch(Plane(origin=(-1.5, 5, -30), x_dir=(-1, 0, 0), z_dir=(0, 0, 1))) as fillet1_piece_9b_section:
        with BuildLine():
            CenterArc((FILLET1_R, -FILLET1_R), FILLET1_R, 90, 90)
            Line((0, -FILLET1_R), (0, 0))
            Line((0, 0), (FILLET1_R, 0))
        make_face()
    fillet1_piece_9b = extrude(amount=40, mode=Mode.PRIVATE)
    fillet1_piece_9b = split(fillet1_piece_9b, bisect_by=Plane(origin=(-1.5, 5, -15), z_dir=(0, 0, 1)), keep=Keep.TOP, mode=Mode.PRIVATE)
    fillet1_piece_9 = fillet1_piece_9a & fillet1_piece_9b
    add(fillet1_piece_9)
    with BuildSketch(Plane(origin=(-1.5, 5, -15), x_dir=(0, 0, 1), z_dir=(1, 0, 0))) as fillet1_piece_10a_section:
        with BuildLine():
            CenterArc((FILLET1_R, -FILLET1_R), FILLET1_R, 90, 90)
            Line((0, -FILLET1_R), (0, 0))
            Line((0, 0), (FILLET1_R, 0))
        make_face()
    fillet1_piece_10a = extrude(amount=28, mode=Mode.PRIVATE)
    fillet1_piece_10a = split(fillet1_piece_10a, bisect_by=Plane(origin=(5, 5, -15), z_dir=(-1, 0, 0)), keep=Keep.TOP, mode=Mode.PRIVATE)
    fillet1_piece_10a = split(fillet1_piece_10a, bisect_by=Plane(origin=(1.5, 5, -15), z_dir=(1, 0, 0)), keep=Keep.TOP, mode=Mode.PRIVATE)
    with BuildSketch(Plane(origin=(1.5, 5, 10), x_dir=(1, 0, 0), z_dir=(0, 0, -1))) as fillet1_piece_10b_section:
        with BuildLine():
            CenterArc((FILLET1_R, -FILLET1_R), FILLET1_R, 90, 90)
            Line((0, -FILLET1_R), (0, 0))
            Line((0, 0), (FILLET1_R, 0))
        make_face()
    fillet1_piece_10b = extrude(amount=40, mode=Mode.PRIVATE)
    fillet1_piece_10b = split(fillet1_piece_10b, bisect_by=Plane(origin=(5, 5, 10), z_dir=(-1, 0, 0)), keep=Keep.TOP, mode=Mode.PRIVATE)
    fillet1_piece_10b = split(fillet1_piece_10b, bisect_by=Plane(origin=(1.5, 5, -15), z_dir=(0, 0, 1)), keep=Keep.TOP, mode=Mode.PRIVATE)
    fillet1_piece_10 = fillet1_piece_10a & fillet1_piece_10b
    add(fillet1_piece_10)


solid = part.part
